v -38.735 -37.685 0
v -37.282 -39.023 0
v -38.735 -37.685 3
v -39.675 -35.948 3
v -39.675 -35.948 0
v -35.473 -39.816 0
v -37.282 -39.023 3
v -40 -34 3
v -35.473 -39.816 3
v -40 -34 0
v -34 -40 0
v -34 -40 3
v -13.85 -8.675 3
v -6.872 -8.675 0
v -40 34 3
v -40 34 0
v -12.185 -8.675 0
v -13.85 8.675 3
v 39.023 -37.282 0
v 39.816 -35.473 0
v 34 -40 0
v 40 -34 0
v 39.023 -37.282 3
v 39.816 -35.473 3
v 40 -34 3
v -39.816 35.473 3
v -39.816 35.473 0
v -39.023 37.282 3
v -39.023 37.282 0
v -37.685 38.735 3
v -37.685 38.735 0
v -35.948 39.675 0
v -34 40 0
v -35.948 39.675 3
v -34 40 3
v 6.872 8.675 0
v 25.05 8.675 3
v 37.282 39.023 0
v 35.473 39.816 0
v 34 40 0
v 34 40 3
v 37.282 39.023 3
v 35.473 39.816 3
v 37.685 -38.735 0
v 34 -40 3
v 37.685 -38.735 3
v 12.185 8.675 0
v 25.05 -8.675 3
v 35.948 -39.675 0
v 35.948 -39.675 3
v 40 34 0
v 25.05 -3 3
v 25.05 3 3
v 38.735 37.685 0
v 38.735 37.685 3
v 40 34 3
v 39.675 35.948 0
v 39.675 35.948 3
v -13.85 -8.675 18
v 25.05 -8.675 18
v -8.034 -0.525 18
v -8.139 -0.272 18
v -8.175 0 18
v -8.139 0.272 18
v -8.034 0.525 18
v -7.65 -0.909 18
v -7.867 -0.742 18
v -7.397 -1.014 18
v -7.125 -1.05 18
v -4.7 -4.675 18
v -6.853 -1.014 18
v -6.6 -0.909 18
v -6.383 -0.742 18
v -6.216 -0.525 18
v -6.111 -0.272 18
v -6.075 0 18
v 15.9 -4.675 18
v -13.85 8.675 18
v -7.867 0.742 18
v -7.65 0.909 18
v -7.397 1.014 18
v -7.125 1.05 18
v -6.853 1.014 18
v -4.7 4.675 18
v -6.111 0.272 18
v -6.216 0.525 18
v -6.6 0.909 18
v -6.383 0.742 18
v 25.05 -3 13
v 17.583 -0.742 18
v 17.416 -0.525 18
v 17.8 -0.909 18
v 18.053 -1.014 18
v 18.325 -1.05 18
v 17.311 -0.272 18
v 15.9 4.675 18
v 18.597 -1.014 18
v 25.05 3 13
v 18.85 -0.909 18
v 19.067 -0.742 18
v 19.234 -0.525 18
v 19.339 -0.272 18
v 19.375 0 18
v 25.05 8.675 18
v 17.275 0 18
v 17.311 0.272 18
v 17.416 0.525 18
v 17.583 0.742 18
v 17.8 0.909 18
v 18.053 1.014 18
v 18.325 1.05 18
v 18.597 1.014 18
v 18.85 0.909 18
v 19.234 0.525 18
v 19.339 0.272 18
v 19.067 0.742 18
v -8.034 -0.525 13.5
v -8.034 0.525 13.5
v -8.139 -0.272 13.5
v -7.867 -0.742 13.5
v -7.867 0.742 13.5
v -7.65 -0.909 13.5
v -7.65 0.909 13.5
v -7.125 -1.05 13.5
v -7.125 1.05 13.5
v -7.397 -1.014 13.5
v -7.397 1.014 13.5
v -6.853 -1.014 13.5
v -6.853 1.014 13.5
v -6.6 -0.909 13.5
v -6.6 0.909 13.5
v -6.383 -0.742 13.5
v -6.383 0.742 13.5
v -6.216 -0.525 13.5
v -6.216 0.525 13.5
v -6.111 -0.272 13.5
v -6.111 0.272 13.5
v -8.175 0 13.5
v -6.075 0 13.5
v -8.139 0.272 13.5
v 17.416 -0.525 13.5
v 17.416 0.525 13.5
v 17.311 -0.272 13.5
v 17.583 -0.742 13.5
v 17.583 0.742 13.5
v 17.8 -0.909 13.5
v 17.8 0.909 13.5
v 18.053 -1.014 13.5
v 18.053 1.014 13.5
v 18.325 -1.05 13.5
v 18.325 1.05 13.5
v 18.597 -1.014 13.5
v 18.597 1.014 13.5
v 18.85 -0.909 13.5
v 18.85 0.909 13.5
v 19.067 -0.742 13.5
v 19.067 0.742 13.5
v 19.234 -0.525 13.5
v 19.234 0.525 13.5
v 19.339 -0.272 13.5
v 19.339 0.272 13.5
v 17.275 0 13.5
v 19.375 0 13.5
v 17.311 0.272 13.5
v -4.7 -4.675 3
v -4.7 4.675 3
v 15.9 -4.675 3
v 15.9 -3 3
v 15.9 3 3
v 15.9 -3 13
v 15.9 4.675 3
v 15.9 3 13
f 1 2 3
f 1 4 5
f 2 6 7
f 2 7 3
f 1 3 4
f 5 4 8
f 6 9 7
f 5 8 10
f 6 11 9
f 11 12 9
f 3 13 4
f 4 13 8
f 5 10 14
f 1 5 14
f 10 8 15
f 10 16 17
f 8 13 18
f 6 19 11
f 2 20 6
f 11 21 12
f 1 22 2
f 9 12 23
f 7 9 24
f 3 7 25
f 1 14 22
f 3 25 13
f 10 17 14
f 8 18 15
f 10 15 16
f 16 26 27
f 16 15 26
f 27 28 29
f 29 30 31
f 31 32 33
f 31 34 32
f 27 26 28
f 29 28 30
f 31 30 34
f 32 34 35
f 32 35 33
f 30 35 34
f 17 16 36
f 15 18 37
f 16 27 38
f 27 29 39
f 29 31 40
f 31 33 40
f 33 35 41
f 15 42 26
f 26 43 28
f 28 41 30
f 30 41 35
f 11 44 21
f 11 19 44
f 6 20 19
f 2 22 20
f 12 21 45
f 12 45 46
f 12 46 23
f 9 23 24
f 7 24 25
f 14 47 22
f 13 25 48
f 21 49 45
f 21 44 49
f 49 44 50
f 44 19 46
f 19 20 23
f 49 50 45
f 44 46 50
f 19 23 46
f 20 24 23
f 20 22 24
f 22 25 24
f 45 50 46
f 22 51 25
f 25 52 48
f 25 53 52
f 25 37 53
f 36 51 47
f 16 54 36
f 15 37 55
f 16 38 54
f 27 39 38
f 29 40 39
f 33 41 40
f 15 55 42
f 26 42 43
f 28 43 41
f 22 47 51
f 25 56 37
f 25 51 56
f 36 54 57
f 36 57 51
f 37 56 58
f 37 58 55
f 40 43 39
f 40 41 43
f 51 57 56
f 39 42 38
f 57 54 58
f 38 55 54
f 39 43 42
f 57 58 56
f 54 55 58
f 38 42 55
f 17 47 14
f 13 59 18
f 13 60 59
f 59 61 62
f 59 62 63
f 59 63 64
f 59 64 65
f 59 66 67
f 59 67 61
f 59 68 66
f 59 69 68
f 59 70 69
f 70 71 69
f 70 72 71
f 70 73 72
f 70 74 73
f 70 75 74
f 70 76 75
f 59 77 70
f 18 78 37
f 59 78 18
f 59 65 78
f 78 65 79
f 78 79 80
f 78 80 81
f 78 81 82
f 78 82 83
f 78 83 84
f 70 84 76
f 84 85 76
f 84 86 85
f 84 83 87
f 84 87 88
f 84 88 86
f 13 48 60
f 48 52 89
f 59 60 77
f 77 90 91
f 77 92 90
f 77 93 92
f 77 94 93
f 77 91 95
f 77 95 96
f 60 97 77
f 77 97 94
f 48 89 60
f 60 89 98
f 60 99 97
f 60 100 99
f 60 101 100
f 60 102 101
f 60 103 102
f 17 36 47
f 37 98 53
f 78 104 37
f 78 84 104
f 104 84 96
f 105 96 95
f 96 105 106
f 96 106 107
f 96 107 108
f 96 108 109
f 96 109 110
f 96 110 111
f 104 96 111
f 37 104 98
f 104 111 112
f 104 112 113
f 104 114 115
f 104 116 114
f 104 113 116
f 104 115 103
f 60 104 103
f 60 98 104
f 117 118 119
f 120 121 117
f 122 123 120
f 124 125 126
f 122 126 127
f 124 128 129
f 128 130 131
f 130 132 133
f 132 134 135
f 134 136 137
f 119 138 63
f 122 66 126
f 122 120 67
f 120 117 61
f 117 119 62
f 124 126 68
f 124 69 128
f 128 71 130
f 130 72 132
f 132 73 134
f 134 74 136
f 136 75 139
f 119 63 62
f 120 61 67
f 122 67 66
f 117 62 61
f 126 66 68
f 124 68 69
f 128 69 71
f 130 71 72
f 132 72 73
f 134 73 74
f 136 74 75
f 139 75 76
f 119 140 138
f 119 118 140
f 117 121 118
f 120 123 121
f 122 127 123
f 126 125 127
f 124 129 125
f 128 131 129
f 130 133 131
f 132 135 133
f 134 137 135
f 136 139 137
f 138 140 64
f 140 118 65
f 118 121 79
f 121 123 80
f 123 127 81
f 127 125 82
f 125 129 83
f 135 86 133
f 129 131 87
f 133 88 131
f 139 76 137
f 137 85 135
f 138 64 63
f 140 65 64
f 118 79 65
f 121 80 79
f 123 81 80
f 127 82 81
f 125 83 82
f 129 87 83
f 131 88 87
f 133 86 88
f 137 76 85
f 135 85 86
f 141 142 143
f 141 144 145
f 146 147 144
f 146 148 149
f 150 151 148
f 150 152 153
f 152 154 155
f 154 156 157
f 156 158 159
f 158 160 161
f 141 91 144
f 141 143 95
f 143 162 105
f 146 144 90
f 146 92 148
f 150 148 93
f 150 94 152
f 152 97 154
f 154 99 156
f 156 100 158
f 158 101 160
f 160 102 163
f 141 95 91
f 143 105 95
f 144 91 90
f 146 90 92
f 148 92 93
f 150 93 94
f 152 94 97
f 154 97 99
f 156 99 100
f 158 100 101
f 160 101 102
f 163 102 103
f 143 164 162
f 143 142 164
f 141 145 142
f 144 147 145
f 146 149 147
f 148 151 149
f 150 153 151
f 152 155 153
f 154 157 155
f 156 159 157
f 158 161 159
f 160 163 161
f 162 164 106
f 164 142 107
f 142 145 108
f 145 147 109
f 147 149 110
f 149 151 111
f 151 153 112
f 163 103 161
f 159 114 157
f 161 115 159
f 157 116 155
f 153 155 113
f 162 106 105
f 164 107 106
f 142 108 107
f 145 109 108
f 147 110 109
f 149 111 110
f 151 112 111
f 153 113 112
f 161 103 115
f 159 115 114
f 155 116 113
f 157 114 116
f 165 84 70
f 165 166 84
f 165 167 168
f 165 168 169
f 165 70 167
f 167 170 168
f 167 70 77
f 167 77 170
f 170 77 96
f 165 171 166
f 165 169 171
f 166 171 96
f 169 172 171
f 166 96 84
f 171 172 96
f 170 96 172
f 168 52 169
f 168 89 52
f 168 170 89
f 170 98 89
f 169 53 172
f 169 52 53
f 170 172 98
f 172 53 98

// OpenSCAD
// Test stand for the M5Dial head: holds one GH-S37D servo shaft-up, so the
// head can be pressed onto it and tried without printing the rest of the robot.
//
// The servo drops into the pocket from the top and rests on its mounting tabs.
// Fasten the tabs with two M2 screws (or the screws that came with the servo).
// Thread the servo cable through the tunnel at the end of the pocket first.
//
// Frame: the servo shaft axis is at x = 0, y = 0. Print as exported, base down.

// ── GH-S37D sizes (mm), same estimates as gh_s37d.scad ─────────────────────
body_w        = 20;     // body length, tabs not included
body_d        = 8.75;   // body thickness
body_h        = 14.5;   // body height below the tabs
tab_w         = 5.45;   // how far each tab sticks out from the body
shaft_pos     = 4.4;    // shaft axis distance from the near body end
clearance     = 0.3;

// ── Stand ──────────────────────────────────────────────────────────────────
base_size     = 80;     // square base, wide enough for the top-heavy head
base_t        = 3;
base_r        = 6;      // base corner radius
pillar_wall   = 4;
pilot_r       = 1.05;   // M2 self-tapping pilot hole
pilot_depth   = 4.5;
cable_w       = 6;
cable_top     = 5;      // solid wall kept above the cable tunnel, under the tab

body_x0  = -shaft_pos;                 // body end near the shaft
body_cx  = body_x0 + body_w / 2;       // body center
tab_off  = body_w / 2 + tab_w / 2;     // tab hole distance from body center
pillar_h = body_h + 0.5;               // body hangs 0.5 above the base
top_z    = base_t + pillar_h;          // tabs rest here

pillar_x0 = body_cx - body_w / 2 - tab_w - pillar_wall;
pillar_x1 = body_cx + body_w / 2 + tab_w + pillar_wall;
pillar_hw = body_d / 2 + clearance + pillar_wall;

module base() {
    translate([0, 0, 0]) linear_extrude(base_t)
        offset(r = base_r) offset(delta = -base_r)
            square(base_size, center = true);
}

module pillar() {
    translate([pillar_x0, -pillar_hw, 0])
        cube([pillar_x1 - pillar_x0, 2 * pillar_hw, top_z]);
}

module pocket() {
    // servo body
    translate([body_x0 - clearance, -body_d / 2 - clearance, base_t])
        cube([body_w + 2 * clearance, body_d + 2 * clearance, pillar_h + 1]);
    // cable tunnel through the bottom of the far end wall (the tab rests above it)
    translate([body_x0 + body_w, -cable_w / 2, base_t])
        cube([pillar_x1 - (body_x0 + body_w) + 1, cable_w, pillar_h - cable_top]);
    // tab screw pilots
    for (s = [-1, 1])
        translate([body_cx + s * tab_off, 0, top_z - pilot_depth])
            cylinder(r = pilot_r, h = pilot_depth + 1, $fn = 24);
}

difference() {
    union() {
        base();
        pillar();
    }
    pocket();
}
